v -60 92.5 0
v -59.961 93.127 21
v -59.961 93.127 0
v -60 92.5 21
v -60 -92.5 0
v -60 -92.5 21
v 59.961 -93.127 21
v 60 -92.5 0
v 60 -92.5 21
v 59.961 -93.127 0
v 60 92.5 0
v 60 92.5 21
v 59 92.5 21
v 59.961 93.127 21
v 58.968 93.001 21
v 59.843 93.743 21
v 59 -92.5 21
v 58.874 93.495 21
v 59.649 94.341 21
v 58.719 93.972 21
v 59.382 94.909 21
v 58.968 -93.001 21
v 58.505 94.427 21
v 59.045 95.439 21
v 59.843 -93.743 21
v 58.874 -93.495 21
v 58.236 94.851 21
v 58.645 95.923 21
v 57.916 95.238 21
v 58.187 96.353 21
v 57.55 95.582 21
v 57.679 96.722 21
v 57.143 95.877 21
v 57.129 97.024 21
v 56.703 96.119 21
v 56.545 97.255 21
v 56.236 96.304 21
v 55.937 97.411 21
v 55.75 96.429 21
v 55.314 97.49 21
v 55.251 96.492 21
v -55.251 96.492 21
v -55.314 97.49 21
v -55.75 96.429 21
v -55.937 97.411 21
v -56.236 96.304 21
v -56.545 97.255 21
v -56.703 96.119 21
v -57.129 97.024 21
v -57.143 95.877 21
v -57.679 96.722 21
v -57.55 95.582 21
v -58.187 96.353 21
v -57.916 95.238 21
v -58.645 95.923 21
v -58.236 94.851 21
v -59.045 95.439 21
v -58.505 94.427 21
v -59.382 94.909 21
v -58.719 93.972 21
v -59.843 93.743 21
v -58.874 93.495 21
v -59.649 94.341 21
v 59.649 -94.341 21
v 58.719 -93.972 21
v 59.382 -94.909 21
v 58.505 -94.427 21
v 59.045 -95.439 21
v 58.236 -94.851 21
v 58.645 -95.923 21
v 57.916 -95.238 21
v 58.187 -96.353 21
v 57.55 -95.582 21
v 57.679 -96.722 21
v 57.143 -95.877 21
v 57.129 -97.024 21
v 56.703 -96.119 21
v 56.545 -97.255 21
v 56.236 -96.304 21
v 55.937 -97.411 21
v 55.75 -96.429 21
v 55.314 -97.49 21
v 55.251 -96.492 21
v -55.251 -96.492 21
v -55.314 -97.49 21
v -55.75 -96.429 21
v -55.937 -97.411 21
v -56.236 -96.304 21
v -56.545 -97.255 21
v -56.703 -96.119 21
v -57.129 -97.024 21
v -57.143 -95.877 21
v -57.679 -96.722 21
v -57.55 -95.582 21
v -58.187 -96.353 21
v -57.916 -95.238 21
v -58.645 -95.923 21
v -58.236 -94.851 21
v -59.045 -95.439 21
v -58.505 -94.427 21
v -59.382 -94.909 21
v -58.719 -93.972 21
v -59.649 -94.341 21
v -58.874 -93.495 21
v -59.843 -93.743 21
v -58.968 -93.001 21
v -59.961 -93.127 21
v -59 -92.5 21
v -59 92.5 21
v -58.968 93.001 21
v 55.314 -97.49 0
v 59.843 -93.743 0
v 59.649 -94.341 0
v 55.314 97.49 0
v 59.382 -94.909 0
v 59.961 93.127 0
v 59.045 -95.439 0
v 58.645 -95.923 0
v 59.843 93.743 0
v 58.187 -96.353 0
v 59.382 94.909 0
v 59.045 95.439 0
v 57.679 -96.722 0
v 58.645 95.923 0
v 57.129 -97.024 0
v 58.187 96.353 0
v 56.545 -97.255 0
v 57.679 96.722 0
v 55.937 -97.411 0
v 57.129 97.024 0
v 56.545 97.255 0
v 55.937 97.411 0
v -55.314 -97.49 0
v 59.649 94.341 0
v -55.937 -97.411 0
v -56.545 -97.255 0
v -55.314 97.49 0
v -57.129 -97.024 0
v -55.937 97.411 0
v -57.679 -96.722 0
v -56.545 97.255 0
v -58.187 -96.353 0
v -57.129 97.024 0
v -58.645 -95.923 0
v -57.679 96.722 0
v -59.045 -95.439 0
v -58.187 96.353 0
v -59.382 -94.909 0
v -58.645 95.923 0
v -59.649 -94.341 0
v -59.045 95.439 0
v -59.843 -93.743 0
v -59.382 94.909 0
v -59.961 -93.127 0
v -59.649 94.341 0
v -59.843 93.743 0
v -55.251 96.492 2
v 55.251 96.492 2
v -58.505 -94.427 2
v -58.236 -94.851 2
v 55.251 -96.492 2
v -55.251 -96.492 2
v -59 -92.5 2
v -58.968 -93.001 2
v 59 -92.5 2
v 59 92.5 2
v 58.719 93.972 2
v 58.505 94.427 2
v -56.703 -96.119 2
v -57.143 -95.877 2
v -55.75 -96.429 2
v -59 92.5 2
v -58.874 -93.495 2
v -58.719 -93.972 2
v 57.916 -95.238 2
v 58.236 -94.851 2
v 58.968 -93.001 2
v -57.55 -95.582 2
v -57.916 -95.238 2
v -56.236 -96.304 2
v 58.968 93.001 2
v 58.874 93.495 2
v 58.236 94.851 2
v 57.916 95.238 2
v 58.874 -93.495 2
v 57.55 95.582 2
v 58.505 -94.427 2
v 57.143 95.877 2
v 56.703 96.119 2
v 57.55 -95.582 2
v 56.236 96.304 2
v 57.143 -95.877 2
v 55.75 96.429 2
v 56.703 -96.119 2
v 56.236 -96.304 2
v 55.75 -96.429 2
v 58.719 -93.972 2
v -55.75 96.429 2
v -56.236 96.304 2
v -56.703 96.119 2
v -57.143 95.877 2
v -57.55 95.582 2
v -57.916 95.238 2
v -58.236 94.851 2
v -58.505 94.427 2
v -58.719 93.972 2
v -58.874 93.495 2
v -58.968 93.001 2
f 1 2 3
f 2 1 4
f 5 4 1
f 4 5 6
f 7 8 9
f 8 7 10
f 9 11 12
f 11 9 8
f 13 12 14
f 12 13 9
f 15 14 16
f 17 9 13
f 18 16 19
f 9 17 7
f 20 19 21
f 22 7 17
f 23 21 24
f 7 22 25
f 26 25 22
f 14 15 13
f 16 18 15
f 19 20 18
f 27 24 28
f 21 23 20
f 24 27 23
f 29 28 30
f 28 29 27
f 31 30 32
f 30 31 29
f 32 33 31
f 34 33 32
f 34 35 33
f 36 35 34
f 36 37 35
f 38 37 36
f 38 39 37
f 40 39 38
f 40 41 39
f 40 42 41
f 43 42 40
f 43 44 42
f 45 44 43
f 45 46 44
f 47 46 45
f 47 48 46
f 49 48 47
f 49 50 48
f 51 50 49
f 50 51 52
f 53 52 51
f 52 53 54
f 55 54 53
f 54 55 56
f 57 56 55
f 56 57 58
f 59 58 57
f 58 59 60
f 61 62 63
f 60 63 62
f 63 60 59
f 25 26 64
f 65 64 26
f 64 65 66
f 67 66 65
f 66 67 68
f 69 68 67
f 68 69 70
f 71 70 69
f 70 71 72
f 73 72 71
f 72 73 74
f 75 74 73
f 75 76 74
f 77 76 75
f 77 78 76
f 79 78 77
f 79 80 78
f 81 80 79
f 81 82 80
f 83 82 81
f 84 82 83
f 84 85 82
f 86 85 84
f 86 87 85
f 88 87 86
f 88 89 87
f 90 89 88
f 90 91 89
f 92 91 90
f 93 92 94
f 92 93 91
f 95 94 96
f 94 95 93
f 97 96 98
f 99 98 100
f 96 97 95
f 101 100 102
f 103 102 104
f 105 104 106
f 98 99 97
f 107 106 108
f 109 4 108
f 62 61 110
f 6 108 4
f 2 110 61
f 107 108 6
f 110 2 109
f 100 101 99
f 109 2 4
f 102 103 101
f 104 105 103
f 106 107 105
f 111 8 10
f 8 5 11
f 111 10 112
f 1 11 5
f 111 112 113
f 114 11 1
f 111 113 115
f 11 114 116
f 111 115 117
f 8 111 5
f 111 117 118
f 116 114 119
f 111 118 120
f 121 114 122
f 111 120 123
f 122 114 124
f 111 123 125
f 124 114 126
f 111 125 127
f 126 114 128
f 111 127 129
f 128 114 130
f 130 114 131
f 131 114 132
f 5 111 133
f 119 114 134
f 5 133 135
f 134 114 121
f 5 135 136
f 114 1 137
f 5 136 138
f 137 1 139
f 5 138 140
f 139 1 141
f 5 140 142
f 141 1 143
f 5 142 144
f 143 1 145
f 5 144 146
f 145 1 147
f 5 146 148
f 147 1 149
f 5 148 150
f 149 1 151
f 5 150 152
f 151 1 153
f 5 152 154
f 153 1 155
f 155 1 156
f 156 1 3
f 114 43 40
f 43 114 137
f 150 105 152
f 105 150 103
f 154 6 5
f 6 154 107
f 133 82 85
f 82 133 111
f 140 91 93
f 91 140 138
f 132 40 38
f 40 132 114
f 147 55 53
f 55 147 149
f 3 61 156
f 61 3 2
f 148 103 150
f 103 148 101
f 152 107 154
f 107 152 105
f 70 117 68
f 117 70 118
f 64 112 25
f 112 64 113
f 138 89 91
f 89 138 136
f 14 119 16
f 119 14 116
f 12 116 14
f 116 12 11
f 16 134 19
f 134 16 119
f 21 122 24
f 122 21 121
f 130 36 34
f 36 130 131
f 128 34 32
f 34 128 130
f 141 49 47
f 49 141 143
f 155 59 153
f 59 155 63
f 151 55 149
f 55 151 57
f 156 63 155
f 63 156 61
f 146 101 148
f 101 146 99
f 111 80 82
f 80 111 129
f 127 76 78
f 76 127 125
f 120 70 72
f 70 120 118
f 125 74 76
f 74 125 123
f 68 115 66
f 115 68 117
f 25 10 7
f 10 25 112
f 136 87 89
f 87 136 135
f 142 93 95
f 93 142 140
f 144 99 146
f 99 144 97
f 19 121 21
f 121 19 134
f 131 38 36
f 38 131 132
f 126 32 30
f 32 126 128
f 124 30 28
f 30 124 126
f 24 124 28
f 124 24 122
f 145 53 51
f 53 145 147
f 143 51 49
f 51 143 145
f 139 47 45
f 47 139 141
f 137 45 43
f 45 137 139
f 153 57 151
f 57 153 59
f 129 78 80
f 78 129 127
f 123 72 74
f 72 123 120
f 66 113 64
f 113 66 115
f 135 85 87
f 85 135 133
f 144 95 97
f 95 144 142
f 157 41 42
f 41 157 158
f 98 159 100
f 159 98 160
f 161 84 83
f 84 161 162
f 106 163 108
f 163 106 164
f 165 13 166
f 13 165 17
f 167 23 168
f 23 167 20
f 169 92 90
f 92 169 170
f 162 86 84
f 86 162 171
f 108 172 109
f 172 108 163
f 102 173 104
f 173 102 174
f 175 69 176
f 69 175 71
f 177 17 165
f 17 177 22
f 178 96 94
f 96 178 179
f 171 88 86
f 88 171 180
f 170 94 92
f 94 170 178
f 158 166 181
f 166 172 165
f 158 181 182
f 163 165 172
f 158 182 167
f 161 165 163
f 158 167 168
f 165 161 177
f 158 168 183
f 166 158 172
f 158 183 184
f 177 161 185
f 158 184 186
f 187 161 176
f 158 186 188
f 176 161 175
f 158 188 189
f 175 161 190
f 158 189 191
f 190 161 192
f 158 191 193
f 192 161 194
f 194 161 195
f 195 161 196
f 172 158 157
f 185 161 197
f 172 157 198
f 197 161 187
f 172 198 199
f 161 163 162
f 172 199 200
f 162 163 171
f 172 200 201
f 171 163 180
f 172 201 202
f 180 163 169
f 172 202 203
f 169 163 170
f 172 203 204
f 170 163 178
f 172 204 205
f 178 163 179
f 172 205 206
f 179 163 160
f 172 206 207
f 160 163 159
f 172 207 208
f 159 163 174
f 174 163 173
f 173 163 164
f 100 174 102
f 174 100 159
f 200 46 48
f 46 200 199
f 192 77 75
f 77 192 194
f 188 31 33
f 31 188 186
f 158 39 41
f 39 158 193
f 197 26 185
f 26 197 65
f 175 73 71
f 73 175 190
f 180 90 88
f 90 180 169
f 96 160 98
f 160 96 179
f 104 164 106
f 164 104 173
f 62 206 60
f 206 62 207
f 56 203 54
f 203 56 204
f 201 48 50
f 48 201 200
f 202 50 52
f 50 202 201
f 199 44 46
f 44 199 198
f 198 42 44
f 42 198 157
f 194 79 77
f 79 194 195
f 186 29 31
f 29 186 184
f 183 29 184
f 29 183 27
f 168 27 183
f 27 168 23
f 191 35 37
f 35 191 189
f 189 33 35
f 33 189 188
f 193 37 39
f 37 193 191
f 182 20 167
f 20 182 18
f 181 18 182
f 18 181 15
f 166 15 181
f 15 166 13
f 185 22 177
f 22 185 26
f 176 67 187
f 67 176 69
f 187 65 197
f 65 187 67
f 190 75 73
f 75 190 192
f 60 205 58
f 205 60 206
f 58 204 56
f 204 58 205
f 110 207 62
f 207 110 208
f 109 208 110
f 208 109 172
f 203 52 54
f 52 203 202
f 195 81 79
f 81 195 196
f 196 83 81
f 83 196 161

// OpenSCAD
$fn = 50;


difference() {
	union() {
		hull() {
			translate(v = [-55.0000000000, 92.5000000000, 0]) {
				cylinder(h = 21, r = 5);
			}
			translate(v = [55.0000000000, 92.5000000000, 0]) {
				cylinder(h = 21, r = 5);
			}
			translate(v = [-55.0000000000, -92.5000000000, 0]) {
				cylinder(h = 21, r = 5);
			}
			translate(v = [55.0000000000, -92.5000000000, 0]) {
				cylinder(h = 21, r = 5);
			}
		}
	}
	union() {
		translate(v = [0, 0, 2]) {
			hull() {
				translate(v = [-55.0000000000, 92.5000000000, 0]) {
					cylinder(h = 19, r = 4);
				}
				translate(v = [55.0000000000, 92.5000000000, 0]) {
					cylinder(h = 19, r = 4);
				}
				translate(v = [-55.0000000000, -92.5000000000, 0]) {
					cylinder(h = 19, r = 4);
				}
				translate(v = [55.0000000000, -92.5000000000, 0]) {
					cylinder(h = 19, r = 4);
				}
			}
		}
	}
}
